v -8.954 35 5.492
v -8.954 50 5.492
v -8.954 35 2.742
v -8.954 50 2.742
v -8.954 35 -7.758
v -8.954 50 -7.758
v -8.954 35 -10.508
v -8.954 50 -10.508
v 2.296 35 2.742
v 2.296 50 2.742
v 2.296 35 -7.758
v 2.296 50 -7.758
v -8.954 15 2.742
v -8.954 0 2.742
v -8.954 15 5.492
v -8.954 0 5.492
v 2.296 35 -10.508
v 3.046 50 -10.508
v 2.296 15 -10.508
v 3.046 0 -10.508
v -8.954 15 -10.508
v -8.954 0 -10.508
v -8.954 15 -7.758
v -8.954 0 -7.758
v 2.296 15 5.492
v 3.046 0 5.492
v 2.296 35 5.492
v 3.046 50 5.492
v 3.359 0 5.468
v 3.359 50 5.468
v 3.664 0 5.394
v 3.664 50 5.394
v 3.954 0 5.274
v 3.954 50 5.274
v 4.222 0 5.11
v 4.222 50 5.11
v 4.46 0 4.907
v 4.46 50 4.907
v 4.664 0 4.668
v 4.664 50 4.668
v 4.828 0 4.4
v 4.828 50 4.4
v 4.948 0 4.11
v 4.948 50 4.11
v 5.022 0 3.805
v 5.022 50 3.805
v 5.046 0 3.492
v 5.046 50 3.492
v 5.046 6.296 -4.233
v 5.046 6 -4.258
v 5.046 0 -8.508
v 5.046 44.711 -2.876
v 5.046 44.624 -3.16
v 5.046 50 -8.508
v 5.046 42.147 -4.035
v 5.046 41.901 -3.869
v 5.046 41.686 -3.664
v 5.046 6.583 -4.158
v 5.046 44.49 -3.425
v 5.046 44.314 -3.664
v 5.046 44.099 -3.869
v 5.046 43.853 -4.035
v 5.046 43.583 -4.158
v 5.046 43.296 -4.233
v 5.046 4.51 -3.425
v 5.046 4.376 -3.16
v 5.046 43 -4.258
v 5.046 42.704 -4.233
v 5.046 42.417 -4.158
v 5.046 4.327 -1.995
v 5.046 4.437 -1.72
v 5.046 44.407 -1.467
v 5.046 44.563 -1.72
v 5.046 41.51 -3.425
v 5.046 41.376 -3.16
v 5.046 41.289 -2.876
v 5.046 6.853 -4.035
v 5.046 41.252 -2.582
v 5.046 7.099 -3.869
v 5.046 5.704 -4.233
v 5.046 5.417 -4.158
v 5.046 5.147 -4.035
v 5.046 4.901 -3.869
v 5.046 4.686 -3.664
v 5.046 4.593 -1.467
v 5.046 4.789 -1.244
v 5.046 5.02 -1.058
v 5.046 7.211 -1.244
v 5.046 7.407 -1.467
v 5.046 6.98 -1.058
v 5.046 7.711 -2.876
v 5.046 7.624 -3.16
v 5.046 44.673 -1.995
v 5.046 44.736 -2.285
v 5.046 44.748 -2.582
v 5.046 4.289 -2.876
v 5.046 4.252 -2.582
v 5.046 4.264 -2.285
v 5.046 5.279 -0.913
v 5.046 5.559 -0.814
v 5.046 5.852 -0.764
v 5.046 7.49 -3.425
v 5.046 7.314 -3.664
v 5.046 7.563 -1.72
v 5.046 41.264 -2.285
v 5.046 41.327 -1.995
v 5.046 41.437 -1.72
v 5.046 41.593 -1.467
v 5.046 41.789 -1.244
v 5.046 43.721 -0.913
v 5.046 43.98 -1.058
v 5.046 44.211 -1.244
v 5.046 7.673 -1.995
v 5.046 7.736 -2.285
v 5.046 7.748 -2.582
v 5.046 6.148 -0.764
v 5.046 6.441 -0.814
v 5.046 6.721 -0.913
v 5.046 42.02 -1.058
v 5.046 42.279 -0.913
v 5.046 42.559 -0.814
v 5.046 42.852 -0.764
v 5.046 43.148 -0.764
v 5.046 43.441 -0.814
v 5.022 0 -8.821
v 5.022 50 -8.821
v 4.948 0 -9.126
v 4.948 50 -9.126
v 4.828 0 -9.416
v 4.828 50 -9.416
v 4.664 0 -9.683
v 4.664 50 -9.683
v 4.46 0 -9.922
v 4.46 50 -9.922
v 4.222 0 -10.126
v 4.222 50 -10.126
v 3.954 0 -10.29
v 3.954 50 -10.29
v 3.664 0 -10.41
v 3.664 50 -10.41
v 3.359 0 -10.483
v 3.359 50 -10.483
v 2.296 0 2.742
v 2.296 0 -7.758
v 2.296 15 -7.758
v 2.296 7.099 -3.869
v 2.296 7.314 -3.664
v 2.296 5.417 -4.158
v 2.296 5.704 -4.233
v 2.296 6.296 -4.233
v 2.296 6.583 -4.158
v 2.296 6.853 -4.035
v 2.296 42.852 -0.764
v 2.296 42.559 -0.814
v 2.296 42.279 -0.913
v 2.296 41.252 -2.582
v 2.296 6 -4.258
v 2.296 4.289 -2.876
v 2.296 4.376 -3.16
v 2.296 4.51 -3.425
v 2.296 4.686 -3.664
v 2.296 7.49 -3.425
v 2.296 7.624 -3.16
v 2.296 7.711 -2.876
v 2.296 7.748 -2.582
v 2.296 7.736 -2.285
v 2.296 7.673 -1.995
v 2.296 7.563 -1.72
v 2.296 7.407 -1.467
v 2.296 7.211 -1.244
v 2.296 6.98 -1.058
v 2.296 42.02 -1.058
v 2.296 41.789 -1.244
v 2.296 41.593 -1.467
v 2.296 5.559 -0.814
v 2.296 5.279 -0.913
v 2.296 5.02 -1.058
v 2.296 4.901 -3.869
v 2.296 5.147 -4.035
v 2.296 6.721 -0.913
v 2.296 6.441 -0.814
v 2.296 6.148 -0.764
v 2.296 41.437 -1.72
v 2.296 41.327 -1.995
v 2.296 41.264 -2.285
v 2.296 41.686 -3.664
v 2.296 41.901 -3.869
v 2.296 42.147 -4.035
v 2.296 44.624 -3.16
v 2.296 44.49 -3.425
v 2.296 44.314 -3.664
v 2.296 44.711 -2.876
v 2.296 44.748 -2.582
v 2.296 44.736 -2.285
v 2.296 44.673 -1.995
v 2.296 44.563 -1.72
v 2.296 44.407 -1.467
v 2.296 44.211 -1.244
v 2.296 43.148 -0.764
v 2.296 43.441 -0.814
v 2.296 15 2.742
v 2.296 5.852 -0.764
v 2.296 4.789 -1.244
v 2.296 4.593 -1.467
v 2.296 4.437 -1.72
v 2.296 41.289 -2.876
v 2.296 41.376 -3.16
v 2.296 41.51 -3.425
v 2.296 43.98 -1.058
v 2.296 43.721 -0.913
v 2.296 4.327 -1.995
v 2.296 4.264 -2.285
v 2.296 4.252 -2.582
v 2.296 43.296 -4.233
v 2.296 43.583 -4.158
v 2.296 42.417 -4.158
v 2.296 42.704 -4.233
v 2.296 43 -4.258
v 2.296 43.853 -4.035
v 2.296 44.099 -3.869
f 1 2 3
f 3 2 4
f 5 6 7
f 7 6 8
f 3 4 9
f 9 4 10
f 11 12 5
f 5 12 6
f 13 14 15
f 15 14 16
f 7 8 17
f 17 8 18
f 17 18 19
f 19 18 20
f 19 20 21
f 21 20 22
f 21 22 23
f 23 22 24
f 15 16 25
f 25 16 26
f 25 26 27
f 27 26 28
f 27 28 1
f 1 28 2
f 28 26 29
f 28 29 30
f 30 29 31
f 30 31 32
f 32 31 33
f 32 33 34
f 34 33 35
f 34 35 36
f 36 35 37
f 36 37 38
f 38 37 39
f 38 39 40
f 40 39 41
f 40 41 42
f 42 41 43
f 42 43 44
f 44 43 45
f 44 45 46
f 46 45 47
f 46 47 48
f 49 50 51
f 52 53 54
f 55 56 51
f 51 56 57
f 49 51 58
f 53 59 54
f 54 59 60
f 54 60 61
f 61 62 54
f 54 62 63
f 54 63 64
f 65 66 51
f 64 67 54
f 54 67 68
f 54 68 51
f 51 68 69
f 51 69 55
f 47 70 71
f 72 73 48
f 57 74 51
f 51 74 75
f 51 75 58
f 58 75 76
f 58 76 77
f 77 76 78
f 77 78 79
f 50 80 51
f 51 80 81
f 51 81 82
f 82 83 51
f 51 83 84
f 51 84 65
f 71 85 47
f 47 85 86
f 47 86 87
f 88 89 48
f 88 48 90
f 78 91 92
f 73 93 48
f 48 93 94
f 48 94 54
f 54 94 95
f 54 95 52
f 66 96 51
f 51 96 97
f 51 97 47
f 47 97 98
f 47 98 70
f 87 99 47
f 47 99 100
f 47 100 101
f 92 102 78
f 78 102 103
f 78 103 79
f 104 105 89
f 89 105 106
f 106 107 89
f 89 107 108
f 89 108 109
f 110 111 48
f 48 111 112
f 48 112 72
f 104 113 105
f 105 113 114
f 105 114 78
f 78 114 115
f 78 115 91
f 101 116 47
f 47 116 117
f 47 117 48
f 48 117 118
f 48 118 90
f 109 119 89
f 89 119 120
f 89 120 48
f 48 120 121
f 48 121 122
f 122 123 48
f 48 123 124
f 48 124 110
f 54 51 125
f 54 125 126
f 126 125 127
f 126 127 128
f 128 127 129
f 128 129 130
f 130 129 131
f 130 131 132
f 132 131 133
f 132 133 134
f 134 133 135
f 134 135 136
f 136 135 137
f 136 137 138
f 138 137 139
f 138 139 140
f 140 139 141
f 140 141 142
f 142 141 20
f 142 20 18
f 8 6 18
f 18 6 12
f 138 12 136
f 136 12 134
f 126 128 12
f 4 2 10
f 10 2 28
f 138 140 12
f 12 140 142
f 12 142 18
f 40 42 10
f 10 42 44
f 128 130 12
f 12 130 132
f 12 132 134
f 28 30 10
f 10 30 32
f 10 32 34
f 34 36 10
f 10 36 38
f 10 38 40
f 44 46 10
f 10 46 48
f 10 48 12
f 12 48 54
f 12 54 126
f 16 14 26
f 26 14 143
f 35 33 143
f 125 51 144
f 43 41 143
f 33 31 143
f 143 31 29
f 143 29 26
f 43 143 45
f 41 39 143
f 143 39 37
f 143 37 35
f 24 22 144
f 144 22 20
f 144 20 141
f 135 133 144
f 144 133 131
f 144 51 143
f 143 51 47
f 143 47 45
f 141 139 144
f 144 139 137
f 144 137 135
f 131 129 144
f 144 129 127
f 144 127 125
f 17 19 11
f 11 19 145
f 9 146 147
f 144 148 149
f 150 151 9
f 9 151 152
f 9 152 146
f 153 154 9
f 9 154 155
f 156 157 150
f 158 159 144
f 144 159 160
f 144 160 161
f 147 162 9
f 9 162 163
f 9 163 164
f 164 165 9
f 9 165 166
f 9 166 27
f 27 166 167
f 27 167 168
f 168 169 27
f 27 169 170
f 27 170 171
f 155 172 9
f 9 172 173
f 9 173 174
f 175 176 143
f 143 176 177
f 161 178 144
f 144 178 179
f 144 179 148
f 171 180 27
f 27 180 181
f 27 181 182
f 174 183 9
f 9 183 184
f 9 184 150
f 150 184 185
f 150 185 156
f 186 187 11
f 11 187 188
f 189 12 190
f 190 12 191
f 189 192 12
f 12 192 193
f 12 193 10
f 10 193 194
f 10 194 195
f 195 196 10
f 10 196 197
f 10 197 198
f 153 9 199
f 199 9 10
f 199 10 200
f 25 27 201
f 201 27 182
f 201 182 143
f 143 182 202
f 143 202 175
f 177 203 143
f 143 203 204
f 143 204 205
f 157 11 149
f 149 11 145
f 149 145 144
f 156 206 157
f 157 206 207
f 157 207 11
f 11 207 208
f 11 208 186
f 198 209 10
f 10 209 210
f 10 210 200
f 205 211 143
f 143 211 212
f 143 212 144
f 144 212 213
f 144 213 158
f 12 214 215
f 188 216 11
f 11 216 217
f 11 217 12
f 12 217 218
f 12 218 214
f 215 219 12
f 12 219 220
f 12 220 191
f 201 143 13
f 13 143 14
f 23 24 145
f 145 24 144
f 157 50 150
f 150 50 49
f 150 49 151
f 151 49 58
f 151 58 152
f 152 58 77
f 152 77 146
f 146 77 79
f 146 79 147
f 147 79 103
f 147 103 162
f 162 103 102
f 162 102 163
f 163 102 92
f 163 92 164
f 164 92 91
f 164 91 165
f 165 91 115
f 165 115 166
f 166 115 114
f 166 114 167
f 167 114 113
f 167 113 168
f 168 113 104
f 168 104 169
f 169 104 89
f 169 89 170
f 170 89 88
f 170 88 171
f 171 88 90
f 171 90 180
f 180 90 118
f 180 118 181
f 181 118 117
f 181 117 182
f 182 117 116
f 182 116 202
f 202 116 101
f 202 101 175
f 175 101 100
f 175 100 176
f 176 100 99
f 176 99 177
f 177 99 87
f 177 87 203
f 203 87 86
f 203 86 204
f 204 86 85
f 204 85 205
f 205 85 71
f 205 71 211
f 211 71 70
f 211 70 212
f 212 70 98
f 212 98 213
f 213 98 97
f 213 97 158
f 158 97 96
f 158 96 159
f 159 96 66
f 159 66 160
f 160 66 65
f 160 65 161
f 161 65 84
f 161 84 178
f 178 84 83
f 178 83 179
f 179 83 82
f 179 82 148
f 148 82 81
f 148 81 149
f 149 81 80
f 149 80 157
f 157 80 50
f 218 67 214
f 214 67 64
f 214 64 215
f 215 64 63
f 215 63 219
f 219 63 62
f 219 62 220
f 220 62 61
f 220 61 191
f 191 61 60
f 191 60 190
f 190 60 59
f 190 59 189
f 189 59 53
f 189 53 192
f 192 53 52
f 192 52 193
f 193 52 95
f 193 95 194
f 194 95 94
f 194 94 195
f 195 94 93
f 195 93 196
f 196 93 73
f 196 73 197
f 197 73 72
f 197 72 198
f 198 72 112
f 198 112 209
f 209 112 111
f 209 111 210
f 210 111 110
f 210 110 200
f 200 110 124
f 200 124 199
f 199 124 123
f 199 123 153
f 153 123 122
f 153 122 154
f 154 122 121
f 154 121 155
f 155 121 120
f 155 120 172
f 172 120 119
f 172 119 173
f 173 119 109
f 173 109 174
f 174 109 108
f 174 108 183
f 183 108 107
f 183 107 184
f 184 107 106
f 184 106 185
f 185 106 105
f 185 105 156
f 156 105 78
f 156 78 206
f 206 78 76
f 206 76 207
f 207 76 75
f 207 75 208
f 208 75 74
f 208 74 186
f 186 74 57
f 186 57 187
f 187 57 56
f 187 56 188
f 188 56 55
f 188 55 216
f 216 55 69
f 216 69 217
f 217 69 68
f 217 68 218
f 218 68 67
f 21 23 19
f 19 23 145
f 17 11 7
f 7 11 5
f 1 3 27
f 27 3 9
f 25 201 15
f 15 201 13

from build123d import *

# Parameters (mm, degrees)
EXTRUDE_1_DEPTH     = 50
SKETCH_2_W          = 8.5
SKETCH_2_H          = 10.5
CUT_EXTRUDE_1_DEPTH = 52.870829554
SKETCH_3_W          = 2.75
SKETCH_3_H          = 10.5
CUT_EXTRUDE_2_DEPTH = 52.870829554
SKETCH_4_R          = 1.75
CUT_EXTRUDE_3_DEPTH = 53.975575482
SKETCH_6_W          = 11.25
SKETCH_6_H          = 20
CUT_EXTRUDE_4_DEPTH = 54.255716697


with BuildPart() as part:
    # 草图1 → 凸台-拉伸1 (new body)
    with BuildSketch(Plane(origin=(0, 0, 0), x_dir=(1, 0, 0), z_dir=(0, 1, 0))):
        with BuildLine():
            Line((-8.953846154, 10.507692308), (-8.953846154, -5.492307692))
            Line((-8.953846154, -5.492307692), (3.046153846, -5.492307692))
            ThreePointArc((3.046153846, -5.492307692), (4.460367409, -4.906521255), (5.046153846, -3.492307692))
            Line((5.046153846, -3.492307692), (5.046153846, 8.507692308))
            ThreePointArc((5.046153846, 8.507692308), (4.460367409, 9.92190587), (3.046153846, 10.507692308))
            Line((3.046153846, 10.507692308), (-8.953846154, 10.507692308))
        make_face()
    extrude(amount=EXTRUDE_1_DEPTH)

    # 草图2 → 切除-拉伸1 (cut, through all)
    with BuildSketch(Plane(origin=(0, 50, 0), x_dir=(1, 0, 0), z_dir=(0, 1, 0))):
        with Locations((-1.953846154, 2.507692308)):
            Rectangle(SKETCH_2_W, SKETCH_2_H)
    extrude(amount=-CUT_EXTRUDE_1_DEPTH, mode=Mode.SUBTRACT)

    # 草图3 → 切除-拉伸2 (cut, through all)
    with BuildSketch(Plane(origin=(0, 50, 0), x_dir=(1, 0, 0), z_dir=(0, 1, 0))):
        with Locations((-7.578846154, 2.507692308)):
            Rectangle(SKETCH_3_W, SKETCH_3_H)
    extrude(amount=-CUT_EXTRUDE_2_DEPTH, mode=Mode.SUBTRACT)

    # 草图4 → 切除-拉伸3 (cut, through all)
    with BuildSketch(Plane(origin=(5.046153846, 0, 0), x_dir=(0, 0, -1), z_dir=(1, 0, 0))):
        with Locations((2.507692308, 43)):
            Circle(SKETCH_4_R)
        with Locations((2.507692308, 6)):
            Circle(SKETCH_4_R)
    extrude(amount=-CUT_EXTRUDE_3_DEPTH, mode=Mode.SUBTRACT)

    # 草图6 → 切除-拉伸4 (cut, through all)
    with BuildSketch(Plane(origin=(0, 0, -10.507692308), x_dir=(-1, 0, 0), z_dir=(0, 0, -1))):
        with Locations((3.328846154, 25)):
            Rectangle(SKETCH_6_W, SKETCH_6_H)
    extrude(amount=-CUT_EXTRUDE_4_DEPTH, mode=Mode.SUBTRACT)


solid = part.part
